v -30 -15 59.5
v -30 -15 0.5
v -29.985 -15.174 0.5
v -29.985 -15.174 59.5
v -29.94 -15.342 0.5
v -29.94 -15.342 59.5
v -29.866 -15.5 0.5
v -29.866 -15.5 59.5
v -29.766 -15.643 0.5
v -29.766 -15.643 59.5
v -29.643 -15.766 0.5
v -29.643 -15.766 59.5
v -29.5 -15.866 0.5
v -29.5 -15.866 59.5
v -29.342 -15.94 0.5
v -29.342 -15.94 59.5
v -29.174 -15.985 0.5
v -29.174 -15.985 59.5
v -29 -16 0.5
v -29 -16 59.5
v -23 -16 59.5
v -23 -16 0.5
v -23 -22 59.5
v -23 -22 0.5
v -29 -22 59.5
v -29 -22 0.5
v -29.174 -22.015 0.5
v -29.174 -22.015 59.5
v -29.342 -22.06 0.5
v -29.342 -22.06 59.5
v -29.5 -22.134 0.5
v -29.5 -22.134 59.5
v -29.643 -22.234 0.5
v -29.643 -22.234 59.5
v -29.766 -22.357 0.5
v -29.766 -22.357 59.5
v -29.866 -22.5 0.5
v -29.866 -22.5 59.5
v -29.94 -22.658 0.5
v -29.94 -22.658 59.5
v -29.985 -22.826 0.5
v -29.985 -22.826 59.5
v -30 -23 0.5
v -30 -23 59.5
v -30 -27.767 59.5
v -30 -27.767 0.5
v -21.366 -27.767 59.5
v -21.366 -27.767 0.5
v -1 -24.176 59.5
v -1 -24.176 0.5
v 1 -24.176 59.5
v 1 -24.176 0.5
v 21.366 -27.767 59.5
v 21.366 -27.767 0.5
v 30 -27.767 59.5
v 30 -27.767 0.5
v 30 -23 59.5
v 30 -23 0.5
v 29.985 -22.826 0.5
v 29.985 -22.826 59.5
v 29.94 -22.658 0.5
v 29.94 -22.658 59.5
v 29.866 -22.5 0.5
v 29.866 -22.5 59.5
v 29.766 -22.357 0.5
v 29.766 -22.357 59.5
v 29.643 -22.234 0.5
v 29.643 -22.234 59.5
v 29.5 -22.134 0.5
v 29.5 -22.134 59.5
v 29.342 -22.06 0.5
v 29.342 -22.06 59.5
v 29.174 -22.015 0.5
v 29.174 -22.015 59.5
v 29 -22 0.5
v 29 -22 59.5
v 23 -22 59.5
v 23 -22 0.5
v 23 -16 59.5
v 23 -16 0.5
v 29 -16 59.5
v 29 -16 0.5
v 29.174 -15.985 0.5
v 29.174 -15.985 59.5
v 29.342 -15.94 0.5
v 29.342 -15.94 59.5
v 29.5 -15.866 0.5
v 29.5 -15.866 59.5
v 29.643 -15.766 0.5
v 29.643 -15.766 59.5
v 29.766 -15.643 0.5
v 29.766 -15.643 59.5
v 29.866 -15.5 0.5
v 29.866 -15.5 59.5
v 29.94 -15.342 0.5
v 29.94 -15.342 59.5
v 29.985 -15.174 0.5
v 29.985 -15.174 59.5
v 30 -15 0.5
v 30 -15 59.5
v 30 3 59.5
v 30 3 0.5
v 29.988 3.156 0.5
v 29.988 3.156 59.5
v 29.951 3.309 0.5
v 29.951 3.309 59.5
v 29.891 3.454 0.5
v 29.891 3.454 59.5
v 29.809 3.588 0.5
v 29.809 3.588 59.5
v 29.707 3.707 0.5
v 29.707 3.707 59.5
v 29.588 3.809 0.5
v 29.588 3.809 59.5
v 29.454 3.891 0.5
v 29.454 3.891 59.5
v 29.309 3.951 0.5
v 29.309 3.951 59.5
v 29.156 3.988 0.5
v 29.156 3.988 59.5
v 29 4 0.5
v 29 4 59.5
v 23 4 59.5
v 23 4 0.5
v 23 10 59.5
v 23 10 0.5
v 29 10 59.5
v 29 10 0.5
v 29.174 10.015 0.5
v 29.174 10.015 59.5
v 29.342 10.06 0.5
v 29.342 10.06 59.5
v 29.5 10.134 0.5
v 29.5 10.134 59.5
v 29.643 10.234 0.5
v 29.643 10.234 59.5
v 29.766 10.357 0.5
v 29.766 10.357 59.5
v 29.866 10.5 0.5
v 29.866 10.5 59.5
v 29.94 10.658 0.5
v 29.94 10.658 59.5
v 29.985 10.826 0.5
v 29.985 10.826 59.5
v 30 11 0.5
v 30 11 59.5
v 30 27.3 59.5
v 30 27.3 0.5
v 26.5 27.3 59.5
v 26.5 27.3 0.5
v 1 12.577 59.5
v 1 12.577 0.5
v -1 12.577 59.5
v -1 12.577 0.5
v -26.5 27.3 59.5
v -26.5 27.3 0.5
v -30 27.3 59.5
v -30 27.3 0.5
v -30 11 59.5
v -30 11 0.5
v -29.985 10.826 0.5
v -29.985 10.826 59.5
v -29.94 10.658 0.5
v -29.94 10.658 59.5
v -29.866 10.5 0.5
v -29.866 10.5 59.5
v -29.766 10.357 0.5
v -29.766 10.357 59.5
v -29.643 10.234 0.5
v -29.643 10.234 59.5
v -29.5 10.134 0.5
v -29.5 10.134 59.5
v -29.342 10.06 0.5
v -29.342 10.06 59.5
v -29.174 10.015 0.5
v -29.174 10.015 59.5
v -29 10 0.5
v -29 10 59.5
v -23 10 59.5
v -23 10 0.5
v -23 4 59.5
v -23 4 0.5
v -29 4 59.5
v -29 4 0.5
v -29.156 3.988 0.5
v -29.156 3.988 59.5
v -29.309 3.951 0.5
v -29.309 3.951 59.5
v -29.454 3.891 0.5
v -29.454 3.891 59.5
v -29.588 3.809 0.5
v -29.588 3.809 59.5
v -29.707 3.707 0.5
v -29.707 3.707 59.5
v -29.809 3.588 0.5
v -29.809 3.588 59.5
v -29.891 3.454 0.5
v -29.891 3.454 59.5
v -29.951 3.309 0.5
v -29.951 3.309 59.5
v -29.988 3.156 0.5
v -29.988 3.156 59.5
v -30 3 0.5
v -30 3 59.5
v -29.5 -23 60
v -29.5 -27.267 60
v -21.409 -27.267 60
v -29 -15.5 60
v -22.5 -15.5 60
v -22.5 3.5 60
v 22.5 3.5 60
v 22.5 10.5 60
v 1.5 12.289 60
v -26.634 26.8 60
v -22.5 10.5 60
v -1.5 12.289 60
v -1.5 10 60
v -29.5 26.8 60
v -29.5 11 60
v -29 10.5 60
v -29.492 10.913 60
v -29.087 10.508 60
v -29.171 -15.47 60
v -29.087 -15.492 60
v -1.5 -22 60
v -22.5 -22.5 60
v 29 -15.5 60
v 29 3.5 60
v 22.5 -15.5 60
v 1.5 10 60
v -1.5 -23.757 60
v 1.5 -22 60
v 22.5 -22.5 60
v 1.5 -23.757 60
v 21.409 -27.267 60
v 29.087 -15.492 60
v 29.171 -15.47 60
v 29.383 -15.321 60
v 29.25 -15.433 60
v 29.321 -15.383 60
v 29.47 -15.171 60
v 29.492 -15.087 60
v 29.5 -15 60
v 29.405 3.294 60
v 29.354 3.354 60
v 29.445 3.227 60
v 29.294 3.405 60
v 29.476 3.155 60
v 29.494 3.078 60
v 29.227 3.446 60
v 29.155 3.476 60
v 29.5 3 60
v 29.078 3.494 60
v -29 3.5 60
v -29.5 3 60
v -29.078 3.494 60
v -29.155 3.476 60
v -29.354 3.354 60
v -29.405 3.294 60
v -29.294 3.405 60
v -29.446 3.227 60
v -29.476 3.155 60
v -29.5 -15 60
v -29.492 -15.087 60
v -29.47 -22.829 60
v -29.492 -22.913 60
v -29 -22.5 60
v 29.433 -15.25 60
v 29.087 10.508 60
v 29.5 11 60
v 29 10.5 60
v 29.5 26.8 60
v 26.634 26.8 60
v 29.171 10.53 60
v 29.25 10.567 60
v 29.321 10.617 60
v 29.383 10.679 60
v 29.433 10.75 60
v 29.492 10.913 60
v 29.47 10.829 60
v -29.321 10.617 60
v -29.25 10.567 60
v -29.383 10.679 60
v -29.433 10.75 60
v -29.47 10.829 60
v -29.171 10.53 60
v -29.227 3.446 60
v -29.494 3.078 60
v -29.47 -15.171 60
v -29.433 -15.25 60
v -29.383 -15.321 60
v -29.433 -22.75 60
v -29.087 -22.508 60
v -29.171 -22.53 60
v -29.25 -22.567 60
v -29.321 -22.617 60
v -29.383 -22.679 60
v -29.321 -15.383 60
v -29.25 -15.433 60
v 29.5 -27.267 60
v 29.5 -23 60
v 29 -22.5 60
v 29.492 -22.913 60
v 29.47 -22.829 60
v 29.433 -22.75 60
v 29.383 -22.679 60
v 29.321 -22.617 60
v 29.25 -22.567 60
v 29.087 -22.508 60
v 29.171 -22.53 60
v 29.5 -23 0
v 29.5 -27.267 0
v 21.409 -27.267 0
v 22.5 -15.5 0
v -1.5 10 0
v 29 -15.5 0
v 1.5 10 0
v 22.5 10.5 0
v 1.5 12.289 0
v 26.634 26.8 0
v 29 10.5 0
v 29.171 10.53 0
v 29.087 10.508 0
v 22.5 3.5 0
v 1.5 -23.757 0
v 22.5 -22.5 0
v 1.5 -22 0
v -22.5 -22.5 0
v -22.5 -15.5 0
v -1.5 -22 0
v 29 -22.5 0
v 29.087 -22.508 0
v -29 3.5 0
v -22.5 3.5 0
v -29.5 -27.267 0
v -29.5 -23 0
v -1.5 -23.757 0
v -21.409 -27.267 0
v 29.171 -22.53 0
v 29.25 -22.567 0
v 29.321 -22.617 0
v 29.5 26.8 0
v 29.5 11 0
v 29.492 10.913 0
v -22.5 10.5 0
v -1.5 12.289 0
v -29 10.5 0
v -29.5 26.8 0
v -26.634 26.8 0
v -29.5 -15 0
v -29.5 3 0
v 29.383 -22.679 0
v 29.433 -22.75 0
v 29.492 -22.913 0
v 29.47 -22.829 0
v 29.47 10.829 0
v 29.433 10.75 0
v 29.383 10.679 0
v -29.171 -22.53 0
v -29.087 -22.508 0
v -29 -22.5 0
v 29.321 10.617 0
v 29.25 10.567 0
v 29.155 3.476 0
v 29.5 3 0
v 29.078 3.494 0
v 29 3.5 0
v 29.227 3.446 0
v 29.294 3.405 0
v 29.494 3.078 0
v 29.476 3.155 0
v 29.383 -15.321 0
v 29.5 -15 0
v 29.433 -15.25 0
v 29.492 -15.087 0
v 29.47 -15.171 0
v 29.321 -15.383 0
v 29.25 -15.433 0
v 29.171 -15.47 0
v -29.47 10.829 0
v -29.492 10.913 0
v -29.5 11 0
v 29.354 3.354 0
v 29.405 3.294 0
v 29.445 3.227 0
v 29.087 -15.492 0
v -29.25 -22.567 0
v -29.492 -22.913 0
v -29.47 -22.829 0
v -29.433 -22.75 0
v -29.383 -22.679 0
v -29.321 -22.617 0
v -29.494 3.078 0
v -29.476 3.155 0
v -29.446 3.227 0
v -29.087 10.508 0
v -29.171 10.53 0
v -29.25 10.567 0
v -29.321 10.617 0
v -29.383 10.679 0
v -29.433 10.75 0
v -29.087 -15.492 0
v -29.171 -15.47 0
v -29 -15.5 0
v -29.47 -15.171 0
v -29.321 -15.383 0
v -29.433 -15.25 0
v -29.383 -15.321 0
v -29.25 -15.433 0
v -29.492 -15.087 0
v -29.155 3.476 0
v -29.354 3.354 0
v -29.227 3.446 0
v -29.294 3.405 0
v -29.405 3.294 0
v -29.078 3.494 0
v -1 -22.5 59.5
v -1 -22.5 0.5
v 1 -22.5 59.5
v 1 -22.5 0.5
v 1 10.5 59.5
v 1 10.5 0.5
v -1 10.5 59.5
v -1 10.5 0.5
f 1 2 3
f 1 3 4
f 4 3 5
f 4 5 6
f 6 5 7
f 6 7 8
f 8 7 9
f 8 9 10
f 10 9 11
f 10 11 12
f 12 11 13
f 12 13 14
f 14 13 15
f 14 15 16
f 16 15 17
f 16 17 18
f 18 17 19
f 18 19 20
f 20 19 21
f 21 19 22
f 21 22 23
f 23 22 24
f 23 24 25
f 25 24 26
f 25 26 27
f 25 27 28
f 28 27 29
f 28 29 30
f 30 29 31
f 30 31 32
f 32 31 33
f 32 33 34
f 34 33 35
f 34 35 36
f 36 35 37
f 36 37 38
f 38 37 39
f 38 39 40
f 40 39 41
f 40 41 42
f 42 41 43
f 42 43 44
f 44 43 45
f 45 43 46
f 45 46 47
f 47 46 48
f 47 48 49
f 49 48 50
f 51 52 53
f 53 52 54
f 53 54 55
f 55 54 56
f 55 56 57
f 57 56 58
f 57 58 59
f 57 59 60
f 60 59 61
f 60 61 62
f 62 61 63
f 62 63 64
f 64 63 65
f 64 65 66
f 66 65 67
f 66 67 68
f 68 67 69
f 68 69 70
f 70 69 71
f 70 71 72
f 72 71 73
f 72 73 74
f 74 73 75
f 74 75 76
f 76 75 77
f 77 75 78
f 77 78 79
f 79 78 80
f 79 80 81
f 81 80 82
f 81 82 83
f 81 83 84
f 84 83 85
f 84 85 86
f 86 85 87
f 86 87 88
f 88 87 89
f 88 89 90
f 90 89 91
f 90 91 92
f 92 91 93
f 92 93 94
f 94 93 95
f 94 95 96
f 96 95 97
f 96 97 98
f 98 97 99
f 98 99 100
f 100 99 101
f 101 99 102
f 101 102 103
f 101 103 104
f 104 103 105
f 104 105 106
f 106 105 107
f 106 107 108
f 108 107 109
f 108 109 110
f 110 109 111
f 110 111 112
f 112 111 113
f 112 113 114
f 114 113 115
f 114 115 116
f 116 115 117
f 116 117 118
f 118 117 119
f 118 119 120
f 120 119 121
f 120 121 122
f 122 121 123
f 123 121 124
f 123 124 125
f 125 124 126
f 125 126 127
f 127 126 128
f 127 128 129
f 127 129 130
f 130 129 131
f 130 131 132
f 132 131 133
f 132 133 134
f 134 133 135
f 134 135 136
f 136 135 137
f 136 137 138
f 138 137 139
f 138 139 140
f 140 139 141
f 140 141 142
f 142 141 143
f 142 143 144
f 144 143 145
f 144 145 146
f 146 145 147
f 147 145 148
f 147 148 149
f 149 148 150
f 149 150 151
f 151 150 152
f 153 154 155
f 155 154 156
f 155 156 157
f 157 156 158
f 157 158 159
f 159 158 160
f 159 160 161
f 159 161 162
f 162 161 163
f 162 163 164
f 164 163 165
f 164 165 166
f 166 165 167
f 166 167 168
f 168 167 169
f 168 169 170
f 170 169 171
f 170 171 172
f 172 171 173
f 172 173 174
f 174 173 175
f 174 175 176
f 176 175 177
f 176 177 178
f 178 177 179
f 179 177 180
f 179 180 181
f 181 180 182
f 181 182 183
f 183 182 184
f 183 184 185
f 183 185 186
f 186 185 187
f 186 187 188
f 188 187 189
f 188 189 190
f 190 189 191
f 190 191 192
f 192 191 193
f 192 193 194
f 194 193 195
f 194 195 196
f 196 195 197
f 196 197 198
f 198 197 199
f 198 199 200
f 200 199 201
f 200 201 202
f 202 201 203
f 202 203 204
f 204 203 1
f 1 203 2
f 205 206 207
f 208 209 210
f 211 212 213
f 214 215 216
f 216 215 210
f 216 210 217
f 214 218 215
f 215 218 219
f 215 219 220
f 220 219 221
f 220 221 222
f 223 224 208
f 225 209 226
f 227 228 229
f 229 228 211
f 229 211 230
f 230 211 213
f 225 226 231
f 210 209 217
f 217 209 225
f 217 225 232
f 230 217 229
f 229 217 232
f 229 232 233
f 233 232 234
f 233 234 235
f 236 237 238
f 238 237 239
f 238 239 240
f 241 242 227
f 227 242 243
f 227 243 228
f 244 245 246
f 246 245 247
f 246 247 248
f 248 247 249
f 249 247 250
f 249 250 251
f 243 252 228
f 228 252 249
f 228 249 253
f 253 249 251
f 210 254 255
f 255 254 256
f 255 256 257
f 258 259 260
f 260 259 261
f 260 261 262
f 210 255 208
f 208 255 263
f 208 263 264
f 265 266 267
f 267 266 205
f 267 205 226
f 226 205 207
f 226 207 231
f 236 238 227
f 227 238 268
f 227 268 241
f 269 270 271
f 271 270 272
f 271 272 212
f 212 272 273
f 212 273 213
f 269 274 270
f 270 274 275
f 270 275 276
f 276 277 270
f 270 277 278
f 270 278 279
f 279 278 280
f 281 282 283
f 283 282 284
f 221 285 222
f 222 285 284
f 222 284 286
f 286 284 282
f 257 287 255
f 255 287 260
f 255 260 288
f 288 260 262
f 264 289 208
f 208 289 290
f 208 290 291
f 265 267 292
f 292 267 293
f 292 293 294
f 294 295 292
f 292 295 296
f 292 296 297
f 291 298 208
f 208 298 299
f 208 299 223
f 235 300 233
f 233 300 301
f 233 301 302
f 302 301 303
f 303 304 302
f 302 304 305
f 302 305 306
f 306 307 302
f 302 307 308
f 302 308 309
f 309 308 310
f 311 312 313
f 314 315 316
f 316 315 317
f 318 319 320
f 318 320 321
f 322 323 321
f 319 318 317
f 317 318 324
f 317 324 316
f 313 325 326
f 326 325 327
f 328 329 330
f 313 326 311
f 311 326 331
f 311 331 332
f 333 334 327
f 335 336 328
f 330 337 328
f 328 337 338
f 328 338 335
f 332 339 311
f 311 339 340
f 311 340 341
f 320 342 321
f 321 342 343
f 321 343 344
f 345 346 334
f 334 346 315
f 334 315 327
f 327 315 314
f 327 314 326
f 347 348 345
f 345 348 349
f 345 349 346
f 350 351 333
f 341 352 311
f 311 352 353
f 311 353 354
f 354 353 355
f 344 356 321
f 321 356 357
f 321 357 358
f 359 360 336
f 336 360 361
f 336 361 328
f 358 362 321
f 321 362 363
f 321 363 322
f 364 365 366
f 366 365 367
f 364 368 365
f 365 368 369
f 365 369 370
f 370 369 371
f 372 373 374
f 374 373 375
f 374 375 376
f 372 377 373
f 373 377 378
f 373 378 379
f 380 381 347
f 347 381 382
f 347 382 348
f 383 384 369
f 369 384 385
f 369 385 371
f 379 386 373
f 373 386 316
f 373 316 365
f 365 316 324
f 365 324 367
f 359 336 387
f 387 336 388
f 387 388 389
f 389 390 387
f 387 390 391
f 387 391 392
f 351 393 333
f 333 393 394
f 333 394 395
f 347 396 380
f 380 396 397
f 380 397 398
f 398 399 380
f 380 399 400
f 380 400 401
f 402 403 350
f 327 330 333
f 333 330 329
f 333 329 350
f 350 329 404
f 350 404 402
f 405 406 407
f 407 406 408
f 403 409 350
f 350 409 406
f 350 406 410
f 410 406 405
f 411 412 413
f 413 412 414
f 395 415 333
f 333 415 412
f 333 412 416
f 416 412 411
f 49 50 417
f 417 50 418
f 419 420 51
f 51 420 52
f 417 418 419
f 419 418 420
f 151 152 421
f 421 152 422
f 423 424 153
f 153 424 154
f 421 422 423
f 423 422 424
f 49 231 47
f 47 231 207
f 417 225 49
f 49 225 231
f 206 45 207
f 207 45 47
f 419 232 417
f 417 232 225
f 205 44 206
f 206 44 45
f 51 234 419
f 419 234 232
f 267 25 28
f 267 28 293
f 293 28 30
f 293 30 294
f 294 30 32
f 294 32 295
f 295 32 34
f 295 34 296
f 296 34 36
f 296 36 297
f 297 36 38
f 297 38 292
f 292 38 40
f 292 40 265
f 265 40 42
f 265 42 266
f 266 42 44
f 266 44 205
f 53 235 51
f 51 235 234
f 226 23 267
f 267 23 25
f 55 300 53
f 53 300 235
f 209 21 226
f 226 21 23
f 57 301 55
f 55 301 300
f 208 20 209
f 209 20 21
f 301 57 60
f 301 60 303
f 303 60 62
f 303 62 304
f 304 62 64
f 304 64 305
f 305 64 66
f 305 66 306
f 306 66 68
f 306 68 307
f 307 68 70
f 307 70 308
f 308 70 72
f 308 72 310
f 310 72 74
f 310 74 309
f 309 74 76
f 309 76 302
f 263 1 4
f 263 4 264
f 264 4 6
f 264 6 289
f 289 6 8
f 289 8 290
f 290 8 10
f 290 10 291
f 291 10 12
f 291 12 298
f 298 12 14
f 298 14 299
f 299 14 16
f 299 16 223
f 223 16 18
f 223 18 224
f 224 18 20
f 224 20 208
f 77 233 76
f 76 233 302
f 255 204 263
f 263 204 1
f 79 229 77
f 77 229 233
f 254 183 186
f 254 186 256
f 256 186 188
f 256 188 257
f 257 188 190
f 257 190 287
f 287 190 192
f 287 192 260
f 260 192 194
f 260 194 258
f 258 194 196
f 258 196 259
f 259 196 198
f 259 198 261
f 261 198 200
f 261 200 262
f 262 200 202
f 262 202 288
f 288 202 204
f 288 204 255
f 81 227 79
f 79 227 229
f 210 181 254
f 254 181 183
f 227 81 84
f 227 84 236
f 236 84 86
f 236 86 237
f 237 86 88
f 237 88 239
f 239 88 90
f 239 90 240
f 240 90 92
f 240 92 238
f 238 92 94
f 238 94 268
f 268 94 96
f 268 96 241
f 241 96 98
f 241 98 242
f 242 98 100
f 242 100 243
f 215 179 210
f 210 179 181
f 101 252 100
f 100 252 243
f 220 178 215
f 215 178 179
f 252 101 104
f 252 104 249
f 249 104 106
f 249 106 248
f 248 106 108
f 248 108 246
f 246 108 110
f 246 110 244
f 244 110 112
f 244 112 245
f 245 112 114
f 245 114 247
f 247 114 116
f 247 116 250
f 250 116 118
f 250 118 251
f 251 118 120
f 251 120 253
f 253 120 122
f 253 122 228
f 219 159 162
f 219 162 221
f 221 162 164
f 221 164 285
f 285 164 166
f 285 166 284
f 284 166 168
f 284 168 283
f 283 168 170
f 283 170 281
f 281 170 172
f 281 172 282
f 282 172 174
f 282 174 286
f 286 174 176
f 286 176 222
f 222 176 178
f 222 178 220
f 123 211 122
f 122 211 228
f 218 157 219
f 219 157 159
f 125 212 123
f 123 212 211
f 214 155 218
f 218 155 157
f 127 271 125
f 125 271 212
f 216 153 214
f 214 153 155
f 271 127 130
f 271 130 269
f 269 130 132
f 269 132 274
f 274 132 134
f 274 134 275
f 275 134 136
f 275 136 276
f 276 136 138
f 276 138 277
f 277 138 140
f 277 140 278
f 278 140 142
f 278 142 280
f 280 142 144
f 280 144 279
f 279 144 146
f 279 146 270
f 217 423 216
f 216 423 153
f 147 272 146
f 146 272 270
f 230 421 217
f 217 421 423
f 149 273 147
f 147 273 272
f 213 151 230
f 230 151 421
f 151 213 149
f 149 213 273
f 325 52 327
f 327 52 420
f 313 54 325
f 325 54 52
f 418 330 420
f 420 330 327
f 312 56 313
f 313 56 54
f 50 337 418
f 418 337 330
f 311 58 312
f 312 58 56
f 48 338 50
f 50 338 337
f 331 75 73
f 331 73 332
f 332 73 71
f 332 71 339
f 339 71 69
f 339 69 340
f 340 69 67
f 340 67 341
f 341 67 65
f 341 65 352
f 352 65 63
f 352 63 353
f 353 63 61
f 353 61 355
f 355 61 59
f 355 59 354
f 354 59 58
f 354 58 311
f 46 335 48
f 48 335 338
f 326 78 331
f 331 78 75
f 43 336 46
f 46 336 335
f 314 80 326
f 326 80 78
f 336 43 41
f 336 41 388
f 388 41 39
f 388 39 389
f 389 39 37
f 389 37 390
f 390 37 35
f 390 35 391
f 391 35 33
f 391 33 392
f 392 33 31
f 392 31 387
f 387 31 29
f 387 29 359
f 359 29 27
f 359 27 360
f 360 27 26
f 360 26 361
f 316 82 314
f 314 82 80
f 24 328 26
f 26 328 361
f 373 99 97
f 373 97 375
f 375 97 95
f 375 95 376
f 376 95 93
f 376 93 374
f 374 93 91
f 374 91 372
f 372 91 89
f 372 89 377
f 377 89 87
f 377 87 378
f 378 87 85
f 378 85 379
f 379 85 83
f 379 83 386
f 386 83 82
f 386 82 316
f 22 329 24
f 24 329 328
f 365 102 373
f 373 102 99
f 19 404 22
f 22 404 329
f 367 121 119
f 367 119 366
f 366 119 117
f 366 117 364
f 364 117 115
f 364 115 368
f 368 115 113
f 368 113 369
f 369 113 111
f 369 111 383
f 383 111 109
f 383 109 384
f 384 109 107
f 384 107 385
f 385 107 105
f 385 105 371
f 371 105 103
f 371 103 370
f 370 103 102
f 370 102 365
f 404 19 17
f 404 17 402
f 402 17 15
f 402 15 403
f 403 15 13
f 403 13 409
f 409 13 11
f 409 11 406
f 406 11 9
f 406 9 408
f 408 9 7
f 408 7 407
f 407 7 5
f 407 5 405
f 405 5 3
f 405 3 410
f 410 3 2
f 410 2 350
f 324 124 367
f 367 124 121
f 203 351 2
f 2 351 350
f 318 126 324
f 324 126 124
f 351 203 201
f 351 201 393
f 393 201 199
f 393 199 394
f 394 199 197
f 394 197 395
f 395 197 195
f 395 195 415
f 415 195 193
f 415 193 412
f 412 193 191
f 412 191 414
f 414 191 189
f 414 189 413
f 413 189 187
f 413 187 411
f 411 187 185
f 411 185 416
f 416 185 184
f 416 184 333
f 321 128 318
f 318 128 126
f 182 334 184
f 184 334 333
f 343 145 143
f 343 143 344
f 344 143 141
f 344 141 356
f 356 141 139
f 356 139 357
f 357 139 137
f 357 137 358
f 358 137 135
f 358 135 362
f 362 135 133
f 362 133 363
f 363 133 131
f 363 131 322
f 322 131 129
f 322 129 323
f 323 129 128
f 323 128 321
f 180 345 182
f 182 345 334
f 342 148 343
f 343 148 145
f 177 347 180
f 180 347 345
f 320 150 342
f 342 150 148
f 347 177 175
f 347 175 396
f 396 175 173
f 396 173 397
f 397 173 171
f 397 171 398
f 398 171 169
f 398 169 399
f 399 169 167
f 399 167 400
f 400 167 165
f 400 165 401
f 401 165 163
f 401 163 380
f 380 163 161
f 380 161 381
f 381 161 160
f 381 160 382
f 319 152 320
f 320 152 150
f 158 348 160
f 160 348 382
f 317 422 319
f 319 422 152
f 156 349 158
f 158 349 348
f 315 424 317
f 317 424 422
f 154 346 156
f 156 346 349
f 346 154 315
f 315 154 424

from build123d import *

# Parameters (mm, degrees)
BOSS_EXTRUDE1_DEPTH = 60
SKETCH3_W           = 2
SKETCH3_H           = 3
CUT_EXTRUDE1_DEPTH  = 73.601820229
CHAMFER1_SIZE       = 0.5


with BuildPart() as part:
    # Sketch1 → Boss-Extrude1 (new body)
    with BuildSketch(Plane.XY):
        with BuildLine():
            Line((-30, 0), (-30, 3))
            ThreePointArc((-30, 3), (-29.707106781, 3.707106781), (-29, 4))
            Line((-29, 4), (-23, 4))
            Line((-23, 4), (-23, 10))
            Line((-23, 10), (-29, 10))
            ThreePointArc((-29, 10), (-29.707106781, 10.292893219), (-30, 11))
            Line((-30, 11), (-30, 27.299782134))
            Line((-30, 27.299782134), (-26.5, 27.299782134))
            Line((-26.5, 27.299782134), (0, 12))
            Line((0, 12), (26.5, 27.299782134))
            Line((26.5, 27.299782134), (30, 27.299782134))
            Line((30, 27.299782134), (30, 11))
            ThreePointArc((30, 11), (29.707106781, 10.292893219), (29, 10))
            Line((29, 10), (23, 10))
            Line((23, 10), (23, 4))
            Line((23, 4), (29, 4))
            ThreePointArc((29, 4), (29.707106781, 3.707106781), (30, 3))
            Line((30, 3), (30, 0))
            Line((30, 0), (30, -15))
            ThreePointArc((30, -15), (29.707106781, -15.707106781), (29, -16))
            Line((29, -16), (23, -16))
            Line((23, -16), (23, -22))
            Line((23, -22), (29, -22))
            ThreePointArc((29, -22), (29.707106781, -22.292893219), (30, -23))
            Line((30, -23), (30, -27.767324332))
            Line((30, -27.767324332), (21.36555799, -27.767324332))
            Line((21.36555799, -27.767324332), (0, -24))
            Line((0, -24), (-21.36555799, -27.767324332))
            Line((-21.36555799, -27.767324332), (-30, -27.767324332))
            Line((-30, -27.767324332), (-30, -23))
            ThreePointArc((-30, -23), (-29.707106781, -22.292893219), (-29, -22))
            Line((-29, -22), (-23, -22))
            Line((-23, -22), (-23, -16))
            Line((-23, -16), (-29, -16))
            ThreePointArc((-29, -16), (-29.707106781, -15.707106781), (-30, -15))
            Line((-30, -15), (-30, 0))
        make_face()
    extrude(amount=BOSS_EXTRUDE1_DEPTH)

    # Sketch3 → Cut-Extrude1 (cut, through all)
    with BuildSketch(Plane(origin=(0, 0, 0), x_dir=(-1, 0, 0), z_dir=(0, 0, -1))):
        with Locations((0, 12)):
            Rectangle(SKETCH3_W, SKETCH3_H)
        with Locations((0, -24)):
            Rectangle(SKETCH3_W, SKETCH3_H)
    extrude(amount=-CUT_EXTRUDE1_DEPTH, mode=Mode.SUBTRACT)

    # Chamfer1
    chamfer1_edges = [part.edges().sort_by_distance(p)[0] for p in [
        (-29.707106781, 3.707106781, 60),
        (-26, 4, 60),
        (-23, 7, 60),
        (-26, 10, 60),
        (-29.707106781, 10.292893219, 60),
        (-30, 19.149891067, 60),
        (-28.25, 27.299782134, 60),
        (-13.75, 19.938566201, 60),
        (13.75, 19.938566201, 60),
        (28.25, 27.299782134, 60),
        (30, 19.149891067, 60),
        (29.707106781, 10.292893219, 60),
        (26, 10, 60),
        (23, 7, 60),
        (26, 4, 60),
        (29.707106781, 3.707106781, 60),
        (30, -6, 60),
        (29.707106781, -15.707106781, 60),
        (26, -16, 60),
        (23, -19, 60),
        (26, -22, 60),
        (29.707106781, -22.292893219, 60),
        (30, -25.383662166, 60),
        (25.682778995, -27.767324332, 60),
        (11.182778995, -25.971825656, 60),
        (-11.182778995, -25.971825656, 60),
        (-25.682778995, -27.767324332, 60),
        (-30, -25.383662166, 60),
        (-29.707106781, -22.292893219, 60),
        (-26, -22, 60),
        (-23, -19, 60),
        (-26, -16, 60),
        (-29.707106781, -15.707106781, 60),
        (-30, -6, 60),
        (-26, -16, 0),
        (-23, -19, 0),
        (-26, -22, 0),
        (-29.707106781, -22.292893219, 0),
        (-30, -25.383662166, 0),
        (-25.682778995, -27.767324332, 0),
        (-11.182778995, -25.971825656, 0),
        (11.182778995, -25.971825656, 0),
        (25.682778995, -27.767324332, 0),
        (30, -25.383662166, 0),
        (29.707106781, -22.292893219, 0),
        (26, -22, 0),
        (23, -19, 0),
        (26, -16, 0),
        (29.707106781, -15.707106781, 0),
        (30, -6, 0),
        (29.707106781, 3.707106781, 0),
        (26, 4, 0),
        (23, 7, 0),
        (26, 10, 0),
        (29.707106781, 10.292893219, 0),
        (30, 19.149891067, 0),
        (28.25, 27.299782134, 0),
        (13.75, 19.938566201, 0),
        (-13.75, 19.938566201, 0),
        (-28.25, 27.299782134, 0),
        (-30, 19.149891067, 0),
        (-29.707106781, 10.292893219, 0),
        (-26, 10, 0),
        (-23, 7, 0),
        (-26, 4, 0),
        (-29.707106781, 3.707106781, 0),
        (-30, -6, 0),
        (-29.707106781, -15.707106781, 0),
        (1, -23.33816349, 60),
        (0, -22.5, 60),
        (-1, -23.33816349, 60),
        (-1, 11.538675135, 60),
        (0, 10.5, 60),
        (1, 11.538675135, 60),
        (-1, 11.538675135, 0),
        (-1, -23.33816349, 0),
        (0, -22.5, 0),
        (1, -23.33816349, 0),
        (1, 11.538675135, 0),
        (0, 10.5, 0),
    ]]
    chamfer(chamfer1_edges, length=CHAMFER1_SIZE)


solid = part.part
